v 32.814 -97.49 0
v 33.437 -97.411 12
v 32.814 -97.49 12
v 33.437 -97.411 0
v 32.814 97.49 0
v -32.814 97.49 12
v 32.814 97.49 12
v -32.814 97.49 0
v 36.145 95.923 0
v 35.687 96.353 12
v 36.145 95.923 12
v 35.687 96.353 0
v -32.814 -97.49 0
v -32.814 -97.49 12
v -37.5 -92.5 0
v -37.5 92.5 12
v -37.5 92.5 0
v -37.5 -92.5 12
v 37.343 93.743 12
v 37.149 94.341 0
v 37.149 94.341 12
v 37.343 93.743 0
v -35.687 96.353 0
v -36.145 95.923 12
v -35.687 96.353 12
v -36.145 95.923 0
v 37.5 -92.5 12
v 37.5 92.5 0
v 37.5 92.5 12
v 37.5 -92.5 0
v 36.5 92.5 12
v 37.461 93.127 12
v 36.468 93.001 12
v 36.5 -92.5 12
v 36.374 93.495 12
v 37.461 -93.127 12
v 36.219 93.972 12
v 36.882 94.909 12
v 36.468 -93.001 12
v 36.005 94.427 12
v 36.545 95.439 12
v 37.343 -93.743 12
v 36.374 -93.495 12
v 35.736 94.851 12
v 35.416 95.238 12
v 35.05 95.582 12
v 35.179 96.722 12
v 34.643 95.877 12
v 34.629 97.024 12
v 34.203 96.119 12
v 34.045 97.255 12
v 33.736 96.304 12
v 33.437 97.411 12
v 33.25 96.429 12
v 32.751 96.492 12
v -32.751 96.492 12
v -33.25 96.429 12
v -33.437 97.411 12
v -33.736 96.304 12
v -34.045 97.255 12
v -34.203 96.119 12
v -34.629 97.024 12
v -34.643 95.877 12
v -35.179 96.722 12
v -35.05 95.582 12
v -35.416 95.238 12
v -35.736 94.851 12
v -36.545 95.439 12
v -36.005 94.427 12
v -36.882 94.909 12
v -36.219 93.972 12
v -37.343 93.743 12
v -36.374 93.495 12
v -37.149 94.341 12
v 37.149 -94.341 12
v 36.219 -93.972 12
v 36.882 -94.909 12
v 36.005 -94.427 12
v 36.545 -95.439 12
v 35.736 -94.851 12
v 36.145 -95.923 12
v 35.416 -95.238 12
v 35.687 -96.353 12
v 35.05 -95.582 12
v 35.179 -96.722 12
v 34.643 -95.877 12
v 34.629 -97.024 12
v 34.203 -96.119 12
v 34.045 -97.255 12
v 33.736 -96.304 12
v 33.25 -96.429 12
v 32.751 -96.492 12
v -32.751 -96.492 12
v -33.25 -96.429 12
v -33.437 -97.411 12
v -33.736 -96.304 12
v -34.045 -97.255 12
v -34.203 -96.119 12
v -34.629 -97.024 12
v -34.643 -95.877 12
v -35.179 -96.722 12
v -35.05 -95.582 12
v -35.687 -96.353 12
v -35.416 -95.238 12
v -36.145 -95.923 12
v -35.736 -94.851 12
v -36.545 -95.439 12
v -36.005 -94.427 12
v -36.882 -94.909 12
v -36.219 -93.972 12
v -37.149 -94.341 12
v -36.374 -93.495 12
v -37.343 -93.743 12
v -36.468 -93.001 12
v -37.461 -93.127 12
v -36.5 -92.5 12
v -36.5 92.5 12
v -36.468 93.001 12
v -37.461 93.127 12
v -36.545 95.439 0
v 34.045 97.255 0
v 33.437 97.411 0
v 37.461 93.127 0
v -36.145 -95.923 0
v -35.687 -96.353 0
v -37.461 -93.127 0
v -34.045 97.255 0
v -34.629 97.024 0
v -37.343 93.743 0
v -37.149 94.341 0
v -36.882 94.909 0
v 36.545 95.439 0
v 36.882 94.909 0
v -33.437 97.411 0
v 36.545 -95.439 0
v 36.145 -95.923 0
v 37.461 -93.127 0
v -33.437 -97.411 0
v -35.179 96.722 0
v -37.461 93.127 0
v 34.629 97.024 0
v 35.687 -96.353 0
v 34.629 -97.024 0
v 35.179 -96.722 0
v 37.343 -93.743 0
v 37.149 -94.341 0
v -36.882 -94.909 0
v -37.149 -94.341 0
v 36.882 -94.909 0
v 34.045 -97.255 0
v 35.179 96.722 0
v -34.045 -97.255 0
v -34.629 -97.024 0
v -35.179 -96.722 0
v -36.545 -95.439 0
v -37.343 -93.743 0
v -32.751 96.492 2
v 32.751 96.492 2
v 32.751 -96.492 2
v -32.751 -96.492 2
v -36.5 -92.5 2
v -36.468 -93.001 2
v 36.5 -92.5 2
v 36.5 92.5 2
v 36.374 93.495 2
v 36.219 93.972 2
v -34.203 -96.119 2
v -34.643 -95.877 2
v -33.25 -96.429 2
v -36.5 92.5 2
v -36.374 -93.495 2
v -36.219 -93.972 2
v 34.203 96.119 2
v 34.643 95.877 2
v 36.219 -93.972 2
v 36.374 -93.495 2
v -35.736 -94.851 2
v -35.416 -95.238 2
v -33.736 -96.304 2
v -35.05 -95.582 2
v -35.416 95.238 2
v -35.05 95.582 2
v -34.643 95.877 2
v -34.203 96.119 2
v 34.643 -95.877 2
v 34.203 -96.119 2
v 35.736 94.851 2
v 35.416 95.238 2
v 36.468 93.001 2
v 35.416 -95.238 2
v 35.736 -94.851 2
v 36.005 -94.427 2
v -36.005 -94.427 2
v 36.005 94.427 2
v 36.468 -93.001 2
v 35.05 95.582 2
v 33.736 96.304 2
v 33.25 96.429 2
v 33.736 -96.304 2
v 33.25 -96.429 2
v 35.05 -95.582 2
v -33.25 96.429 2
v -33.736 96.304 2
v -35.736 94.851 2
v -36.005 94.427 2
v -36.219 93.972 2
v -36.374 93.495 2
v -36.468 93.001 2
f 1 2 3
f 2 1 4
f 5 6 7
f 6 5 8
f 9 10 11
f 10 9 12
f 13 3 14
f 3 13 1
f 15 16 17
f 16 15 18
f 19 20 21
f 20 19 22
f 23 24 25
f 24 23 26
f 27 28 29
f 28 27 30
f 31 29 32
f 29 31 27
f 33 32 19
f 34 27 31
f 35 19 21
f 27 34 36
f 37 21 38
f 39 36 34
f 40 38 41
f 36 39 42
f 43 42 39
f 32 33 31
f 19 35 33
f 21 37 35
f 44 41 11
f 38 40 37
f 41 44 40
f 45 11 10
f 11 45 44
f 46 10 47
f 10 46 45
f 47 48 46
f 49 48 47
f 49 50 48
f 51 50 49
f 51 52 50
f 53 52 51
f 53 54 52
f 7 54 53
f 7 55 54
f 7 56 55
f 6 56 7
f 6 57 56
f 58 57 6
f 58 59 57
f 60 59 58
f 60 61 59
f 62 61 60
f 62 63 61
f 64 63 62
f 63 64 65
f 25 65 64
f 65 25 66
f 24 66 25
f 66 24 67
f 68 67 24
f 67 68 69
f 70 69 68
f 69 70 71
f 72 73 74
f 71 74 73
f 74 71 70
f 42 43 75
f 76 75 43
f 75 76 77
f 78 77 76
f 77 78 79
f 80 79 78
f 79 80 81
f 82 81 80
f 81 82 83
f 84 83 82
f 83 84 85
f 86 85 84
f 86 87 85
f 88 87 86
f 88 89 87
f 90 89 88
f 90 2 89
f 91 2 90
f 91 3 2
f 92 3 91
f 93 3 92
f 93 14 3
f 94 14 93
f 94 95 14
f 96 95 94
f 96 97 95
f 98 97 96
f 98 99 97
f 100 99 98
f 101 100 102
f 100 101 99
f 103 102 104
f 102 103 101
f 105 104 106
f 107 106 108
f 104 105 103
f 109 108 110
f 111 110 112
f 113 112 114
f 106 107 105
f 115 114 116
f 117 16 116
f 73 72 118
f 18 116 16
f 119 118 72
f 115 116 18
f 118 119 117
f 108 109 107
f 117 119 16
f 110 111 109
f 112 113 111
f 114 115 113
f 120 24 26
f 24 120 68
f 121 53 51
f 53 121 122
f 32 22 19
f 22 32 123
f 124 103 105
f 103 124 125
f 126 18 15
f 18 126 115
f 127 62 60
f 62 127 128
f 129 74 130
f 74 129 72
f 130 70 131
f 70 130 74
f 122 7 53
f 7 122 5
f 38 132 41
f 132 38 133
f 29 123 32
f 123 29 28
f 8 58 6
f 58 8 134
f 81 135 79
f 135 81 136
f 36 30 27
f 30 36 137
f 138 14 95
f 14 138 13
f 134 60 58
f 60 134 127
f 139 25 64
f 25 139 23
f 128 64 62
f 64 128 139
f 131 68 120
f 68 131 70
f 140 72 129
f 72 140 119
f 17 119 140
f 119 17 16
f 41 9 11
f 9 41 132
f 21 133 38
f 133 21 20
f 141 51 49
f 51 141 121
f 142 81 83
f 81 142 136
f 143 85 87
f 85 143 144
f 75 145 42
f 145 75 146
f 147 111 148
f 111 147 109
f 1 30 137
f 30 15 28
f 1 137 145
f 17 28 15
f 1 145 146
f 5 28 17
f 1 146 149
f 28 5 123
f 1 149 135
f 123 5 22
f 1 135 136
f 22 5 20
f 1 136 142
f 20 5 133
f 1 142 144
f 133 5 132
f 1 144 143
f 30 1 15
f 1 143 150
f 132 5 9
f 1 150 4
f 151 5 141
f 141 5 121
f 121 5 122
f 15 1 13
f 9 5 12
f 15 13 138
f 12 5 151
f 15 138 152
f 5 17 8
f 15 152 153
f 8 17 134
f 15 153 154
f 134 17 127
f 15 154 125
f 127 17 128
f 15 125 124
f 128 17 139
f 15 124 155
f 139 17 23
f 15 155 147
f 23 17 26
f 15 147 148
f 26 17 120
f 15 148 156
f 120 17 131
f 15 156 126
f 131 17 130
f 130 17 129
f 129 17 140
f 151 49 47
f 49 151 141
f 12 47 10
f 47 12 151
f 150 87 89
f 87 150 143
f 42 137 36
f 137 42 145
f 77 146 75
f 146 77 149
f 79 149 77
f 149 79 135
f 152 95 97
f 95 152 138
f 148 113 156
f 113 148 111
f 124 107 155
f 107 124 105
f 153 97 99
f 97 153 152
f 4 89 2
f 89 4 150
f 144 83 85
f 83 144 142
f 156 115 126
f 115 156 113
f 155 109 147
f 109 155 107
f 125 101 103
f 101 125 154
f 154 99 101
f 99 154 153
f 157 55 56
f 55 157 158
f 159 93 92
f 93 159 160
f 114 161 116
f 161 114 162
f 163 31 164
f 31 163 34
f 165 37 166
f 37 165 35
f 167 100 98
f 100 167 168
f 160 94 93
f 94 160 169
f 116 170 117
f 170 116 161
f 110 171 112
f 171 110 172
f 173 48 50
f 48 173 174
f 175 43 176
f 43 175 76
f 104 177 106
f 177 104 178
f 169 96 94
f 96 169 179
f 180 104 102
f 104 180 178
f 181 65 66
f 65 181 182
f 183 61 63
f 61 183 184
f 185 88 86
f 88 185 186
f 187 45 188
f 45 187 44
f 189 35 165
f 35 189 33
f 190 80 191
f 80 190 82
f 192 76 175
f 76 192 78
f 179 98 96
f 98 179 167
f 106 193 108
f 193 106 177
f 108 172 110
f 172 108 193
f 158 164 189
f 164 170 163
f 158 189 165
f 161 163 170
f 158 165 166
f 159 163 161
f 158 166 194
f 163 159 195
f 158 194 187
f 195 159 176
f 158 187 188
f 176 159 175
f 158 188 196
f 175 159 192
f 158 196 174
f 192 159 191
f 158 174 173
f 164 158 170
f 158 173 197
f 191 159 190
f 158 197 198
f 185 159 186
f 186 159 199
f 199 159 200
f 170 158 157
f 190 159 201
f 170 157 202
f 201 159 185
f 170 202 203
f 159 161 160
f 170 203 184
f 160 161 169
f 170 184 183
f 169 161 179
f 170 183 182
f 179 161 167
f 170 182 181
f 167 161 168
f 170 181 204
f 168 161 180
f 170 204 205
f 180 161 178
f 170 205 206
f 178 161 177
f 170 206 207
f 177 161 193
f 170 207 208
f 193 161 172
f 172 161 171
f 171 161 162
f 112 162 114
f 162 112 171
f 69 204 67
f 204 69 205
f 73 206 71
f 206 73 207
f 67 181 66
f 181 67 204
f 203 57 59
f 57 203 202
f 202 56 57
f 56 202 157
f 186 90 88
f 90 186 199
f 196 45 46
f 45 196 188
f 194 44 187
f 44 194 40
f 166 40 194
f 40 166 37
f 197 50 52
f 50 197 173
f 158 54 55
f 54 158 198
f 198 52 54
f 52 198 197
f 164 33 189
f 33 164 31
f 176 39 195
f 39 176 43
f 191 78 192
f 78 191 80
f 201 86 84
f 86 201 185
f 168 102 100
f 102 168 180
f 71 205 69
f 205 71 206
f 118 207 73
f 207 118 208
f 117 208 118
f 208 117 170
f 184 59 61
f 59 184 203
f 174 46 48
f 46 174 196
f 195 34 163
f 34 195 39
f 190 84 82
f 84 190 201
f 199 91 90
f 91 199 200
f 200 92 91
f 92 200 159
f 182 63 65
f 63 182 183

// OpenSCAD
$fn = 50;


difference() {
	union() {
		hull() {
			translate(v = [-32.5000000000, 92.5000000000, 0]) {
				cylinder(h = 12, r = 5);
			}
			translate(v = [32.5000000000, 92.5000000000, 0]) {
				cylinder(h = 12, r = 5);
			}
			translate(v = [-32.5000000000, -92.5000000000, 0]) {
				cylinder(h = 12, r = 5);
			}
			translate(v = [32.5000000000, -92.5000000000, 0]) {
				cylinder(h = 12, r = 5);
			}
		}
	}
	union() {
		translate(v = [0, 0, 2]) {
			hull() {
				translate(v = [-32.5000000000, 92.5000000000, 0]) {
					cylinder(h = 10, r = 4);
				}
				translate(v = [32.5000000000, 92.5000000000, 0]) {
					cylinder(h = 10, r = 4);
				}
				translate(v = [-32.5000000000, -92.5000000000, 0]) {
					cylinder(h = 10, r = 4);
				}
				translate(v = [32.5000000000, -92.5000000000, 0]) {
					cylinder(h = 10, r = 4);
				}
			}
		}
	}
}
